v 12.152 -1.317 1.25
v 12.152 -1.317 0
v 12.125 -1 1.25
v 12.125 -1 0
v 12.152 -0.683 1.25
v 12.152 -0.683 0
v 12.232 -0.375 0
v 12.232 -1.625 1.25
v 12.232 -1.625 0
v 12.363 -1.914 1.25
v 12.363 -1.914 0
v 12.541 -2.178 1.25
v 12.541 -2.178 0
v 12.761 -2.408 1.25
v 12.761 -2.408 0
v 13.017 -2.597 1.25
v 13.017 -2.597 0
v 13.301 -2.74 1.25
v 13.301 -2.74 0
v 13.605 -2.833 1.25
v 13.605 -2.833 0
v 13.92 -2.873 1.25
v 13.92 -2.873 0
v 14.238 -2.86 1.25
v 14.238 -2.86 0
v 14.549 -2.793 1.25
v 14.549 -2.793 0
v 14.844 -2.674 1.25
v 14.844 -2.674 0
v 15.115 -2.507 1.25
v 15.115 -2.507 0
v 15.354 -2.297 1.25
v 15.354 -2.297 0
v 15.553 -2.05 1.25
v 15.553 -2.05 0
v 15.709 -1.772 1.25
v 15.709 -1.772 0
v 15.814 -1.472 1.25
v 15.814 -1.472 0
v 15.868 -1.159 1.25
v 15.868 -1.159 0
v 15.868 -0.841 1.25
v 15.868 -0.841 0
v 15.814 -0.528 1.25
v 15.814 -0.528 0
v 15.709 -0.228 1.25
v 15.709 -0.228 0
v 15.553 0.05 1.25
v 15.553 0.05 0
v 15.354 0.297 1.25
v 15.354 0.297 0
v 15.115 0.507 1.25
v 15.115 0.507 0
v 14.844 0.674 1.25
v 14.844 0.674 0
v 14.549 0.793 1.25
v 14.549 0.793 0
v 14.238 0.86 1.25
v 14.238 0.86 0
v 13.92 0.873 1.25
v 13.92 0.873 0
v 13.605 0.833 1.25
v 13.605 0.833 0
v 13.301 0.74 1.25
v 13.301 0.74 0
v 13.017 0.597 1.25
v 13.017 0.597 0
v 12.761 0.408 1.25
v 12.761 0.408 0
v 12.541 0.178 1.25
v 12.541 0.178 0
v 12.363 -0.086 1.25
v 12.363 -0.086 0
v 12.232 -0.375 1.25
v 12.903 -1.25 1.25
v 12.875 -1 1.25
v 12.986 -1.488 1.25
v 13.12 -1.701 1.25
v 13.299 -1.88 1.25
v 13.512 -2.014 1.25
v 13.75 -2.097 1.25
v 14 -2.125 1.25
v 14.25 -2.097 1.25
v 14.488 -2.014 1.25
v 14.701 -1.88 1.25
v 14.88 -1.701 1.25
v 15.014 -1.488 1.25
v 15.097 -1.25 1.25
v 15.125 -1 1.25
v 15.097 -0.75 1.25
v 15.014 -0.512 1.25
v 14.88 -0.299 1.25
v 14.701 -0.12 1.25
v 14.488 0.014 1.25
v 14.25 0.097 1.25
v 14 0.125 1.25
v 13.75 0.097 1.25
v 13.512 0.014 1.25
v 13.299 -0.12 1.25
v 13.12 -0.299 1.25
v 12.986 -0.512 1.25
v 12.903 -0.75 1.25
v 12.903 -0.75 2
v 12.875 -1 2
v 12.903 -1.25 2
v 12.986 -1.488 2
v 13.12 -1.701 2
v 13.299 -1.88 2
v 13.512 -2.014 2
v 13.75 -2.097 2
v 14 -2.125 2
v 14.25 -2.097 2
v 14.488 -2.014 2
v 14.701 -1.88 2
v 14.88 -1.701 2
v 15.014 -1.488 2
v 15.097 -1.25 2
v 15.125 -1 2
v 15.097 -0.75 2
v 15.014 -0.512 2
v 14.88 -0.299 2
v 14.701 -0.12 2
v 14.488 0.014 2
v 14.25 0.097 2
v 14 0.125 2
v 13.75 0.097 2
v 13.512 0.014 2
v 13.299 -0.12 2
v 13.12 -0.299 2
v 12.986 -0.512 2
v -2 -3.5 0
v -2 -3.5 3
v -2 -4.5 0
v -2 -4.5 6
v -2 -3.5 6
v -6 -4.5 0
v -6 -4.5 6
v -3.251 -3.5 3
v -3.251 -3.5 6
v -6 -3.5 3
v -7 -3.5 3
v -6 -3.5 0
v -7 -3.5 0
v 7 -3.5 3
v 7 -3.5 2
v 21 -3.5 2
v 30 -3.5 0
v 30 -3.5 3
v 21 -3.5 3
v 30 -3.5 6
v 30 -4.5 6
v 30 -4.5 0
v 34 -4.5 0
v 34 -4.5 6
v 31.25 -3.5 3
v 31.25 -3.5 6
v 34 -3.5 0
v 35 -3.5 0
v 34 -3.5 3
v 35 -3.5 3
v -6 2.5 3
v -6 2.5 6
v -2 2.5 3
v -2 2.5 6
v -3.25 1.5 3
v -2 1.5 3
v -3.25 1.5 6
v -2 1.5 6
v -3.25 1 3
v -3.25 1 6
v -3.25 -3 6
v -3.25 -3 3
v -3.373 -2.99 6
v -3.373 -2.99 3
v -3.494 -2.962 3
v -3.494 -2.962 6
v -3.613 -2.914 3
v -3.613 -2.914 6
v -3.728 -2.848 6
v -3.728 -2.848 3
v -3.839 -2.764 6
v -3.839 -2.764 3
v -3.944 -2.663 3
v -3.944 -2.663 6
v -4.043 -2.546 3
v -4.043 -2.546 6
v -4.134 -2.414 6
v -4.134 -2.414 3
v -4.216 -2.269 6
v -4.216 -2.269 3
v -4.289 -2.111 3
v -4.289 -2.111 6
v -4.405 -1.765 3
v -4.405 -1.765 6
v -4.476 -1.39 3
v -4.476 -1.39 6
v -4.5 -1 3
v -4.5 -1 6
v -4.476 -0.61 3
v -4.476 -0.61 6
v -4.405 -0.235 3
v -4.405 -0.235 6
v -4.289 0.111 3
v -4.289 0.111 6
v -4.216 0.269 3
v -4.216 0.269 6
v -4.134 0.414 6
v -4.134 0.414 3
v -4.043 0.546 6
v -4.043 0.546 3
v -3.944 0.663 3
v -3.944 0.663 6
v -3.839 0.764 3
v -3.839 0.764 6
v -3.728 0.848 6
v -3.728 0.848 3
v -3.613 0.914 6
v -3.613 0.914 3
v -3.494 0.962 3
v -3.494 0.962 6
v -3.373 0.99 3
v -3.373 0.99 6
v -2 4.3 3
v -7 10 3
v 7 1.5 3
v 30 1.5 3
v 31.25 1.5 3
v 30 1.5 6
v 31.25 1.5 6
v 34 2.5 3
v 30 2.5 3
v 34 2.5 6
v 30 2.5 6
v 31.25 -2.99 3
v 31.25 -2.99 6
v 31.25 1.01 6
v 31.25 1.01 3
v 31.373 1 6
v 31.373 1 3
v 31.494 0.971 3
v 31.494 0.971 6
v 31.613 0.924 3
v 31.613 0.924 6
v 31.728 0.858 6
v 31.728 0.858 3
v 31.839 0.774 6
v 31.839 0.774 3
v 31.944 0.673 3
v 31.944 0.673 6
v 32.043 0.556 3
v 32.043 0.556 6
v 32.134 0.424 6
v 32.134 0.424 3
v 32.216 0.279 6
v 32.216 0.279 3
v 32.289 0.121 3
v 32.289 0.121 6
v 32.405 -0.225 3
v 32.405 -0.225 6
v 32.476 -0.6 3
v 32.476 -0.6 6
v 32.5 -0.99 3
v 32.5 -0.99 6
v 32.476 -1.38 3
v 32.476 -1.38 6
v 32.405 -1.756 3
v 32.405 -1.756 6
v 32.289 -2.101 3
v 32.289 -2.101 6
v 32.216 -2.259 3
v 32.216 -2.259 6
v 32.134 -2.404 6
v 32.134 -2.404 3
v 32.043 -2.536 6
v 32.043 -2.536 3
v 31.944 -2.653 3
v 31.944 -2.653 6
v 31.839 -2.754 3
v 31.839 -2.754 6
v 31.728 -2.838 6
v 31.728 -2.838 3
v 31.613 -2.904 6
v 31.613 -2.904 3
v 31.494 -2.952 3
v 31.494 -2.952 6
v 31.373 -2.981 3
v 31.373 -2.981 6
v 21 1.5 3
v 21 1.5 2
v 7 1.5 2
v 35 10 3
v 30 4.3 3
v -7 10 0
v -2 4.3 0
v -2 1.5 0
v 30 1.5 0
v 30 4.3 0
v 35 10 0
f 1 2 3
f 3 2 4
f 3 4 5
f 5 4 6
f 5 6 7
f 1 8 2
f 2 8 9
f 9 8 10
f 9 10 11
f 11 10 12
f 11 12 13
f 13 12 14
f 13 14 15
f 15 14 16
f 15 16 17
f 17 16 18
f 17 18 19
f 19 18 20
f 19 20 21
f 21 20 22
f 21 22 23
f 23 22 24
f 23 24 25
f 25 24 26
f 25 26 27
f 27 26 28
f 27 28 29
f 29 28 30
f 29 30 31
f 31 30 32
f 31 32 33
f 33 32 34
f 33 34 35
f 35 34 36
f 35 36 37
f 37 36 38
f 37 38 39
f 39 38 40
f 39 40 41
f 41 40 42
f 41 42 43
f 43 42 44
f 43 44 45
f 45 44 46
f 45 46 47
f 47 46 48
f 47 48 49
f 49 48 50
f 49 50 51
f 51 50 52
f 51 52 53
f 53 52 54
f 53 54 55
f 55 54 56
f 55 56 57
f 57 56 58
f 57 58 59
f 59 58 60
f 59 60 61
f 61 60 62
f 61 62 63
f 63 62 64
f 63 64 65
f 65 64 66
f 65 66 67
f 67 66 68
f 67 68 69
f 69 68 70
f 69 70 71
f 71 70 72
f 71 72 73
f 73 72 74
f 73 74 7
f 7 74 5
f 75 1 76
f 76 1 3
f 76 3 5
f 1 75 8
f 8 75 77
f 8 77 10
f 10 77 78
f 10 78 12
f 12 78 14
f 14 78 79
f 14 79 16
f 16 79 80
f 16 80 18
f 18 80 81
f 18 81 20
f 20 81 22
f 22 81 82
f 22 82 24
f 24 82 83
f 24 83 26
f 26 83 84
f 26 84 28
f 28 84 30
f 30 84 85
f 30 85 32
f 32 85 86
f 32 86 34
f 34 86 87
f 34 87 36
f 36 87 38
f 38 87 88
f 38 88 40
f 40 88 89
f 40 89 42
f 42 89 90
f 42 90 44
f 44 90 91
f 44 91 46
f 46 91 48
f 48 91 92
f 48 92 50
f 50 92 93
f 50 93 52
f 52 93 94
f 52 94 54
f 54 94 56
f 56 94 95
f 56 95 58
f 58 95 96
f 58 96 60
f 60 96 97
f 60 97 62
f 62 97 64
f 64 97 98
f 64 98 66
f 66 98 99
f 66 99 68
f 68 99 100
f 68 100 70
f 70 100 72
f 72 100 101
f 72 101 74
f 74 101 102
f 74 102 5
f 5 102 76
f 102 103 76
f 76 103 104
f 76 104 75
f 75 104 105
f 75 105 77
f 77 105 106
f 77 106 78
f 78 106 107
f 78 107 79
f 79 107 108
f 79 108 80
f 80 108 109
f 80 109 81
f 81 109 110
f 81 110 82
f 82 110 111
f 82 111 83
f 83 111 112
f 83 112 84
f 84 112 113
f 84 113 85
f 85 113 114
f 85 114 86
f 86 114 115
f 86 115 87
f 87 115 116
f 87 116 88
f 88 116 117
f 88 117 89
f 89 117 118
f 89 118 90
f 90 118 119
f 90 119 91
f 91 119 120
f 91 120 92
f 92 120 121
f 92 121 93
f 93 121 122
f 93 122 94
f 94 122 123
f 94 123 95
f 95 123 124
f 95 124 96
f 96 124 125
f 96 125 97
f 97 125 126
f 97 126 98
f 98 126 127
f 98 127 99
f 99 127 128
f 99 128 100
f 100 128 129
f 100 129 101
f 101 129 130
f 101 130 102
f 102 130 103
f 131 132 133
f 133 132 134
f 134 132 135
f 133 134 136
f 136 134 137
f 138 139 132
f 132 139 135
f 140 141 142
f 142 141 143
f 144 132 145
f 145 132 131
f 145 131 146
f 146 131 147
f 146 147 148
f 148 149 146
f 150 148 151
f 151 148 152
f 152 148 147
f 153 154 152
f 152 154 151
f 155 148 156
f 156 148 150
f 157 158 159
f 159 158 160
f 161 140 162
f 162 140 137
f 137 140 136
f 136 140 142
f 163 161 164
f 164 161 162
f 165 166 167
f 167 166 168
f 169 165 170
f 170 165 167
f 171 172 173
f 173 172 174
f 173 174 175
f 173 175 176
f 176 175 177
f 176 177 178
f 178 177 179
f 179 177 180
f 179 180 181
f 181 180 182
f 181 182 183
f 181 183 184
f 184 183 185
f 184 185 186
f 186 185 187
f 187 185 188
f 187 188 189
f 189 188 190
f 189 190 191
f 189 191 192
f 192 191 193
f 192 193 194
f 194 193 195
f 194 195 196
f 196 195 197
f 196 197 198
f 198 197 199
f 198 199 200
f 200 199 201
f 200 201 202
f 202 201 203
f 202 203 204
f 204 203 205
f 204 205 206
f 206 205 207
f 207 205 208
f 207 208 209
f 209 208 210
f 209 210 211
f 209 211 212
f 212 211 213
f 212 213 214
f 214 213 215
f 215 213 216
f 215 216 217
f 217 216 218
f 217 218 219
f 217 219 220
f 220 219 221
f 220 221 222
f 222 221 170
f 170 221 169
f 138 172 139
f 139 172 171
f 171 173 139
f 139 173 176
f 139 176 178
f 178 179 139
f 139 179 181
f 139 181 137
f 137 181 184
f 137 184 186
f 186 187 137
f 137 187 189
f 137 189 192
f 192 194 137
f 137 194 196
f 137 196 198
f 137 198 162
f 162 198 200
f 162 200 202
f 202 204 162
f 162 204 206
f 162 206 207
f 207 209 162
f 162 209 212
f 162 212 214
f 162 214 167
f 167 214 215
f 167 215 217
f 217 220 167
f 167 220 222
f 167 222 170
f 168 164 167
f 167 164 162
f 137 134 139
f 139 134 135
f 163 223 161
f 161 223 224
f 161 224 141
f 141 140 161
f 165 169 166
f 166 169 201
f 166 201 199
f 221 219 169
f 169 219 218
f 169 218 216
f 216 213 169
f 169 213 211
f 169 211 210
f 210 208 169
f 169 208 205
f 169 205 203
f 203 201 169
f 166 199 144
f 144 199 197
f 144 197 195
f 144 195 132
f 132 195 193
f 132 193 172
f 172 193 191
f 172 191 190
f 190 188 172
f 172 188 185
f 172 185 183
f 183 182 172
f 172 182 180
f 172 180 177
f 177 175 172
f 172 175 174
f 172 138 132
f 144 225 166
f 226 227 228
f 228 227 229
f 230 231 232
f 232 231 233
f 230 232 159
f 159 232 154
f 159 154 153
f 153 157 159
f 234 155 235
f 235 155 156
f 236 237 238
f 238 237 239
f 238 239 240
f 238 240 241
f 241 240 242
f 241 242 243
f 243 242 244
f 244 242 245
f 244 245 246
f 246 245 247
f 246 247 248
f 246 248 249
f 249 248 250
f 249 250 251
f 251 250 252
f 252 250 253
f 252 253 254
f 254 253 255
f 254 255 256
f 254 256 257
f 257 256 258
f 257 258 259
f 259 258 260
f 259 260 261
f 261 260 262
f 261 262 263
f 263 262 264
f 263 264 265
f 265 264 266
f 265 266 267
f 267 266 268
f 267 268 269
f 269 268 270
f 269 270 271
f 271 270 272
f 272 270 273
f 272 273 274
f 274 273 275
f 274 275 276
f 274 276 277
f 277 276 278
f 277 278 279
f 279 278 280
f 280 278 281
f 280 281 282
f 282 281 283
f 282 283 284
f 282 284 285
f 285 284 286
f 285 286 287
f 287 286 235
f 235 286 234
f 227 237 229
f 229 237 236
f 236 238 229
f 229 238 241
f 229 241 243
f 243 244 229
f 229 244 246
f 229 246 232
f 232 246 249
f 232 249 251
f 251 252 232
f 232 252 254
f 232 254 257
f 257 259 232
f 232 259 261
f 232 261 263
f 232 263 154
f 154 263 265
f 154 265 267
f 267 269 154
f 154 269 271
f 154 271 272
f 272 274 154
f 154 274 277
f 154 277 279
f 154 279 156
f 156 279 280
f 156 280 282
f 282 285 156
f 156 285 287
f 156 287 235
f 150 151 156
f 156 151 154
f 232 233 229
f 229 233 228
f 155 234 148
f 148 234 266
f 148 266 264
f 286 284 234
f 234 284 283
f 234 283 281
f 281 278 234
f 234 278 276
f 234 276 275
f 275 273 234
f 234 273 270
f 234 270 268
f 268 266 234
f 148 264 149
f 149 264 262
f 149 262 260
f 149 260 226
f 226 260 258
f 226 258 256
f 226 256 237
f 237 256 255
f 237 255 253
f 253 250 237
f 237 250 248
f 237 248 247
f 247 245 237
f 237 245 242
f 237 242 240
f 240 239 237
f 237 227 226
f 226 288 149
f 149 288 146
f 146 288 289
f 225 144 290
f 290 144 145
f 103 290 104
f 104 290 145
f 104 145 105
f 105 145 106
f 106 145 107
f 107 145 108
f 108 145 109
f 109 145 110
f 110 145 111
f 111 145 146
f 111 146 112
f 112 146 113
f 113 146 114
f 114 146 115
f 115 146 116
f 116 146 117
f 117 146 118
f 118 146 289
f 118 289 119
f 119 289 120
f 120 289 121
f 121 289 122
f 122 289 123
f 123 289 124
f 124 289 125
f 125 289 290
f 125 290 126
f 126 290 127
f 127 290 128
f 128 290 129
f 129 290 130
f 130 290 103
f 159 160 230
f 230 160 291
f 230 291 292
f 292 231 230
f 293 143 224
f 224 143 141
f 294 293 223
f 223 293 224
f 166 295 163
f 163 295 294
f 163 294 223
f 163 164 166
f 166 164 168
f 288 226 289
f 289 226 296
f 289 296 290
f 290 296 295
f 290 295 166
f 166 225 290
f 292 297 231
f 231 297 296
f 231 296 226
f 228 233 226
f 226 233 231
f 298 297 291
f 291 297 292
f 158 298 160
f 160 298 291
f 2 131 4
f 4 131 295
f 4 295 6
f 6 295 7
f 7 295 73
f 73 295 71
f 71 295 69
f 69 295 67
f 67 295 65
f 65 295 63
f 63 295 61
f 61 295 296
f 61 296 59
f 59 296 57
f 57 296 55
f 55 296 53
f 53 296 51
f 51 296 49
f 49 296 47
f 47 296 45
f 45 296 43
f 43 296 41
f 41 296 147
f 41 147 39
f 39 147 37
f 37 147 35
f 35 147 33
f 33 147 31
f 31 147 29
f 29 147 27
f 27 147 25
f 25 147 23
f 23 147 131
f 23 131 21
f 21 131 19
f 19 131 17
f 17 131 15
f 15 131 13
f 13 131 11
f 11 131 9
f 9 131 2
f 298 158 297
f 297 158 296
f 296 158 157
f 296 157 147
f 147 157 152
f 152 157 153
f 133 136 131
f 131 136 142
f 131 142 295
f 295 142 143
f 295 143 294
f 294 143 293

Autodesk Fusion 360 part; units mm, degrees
sketch "Sketch1" plane through (0, 0, 0) normal (0, 0, 1) x (1, 0, 0)
  line L0 (-7, 1.5) -> (35, 1.5)
  line L1 (35, 1.5) -> (35, -3.5)
  line L2 (35, -3.5) -> (-7, -3.5)
  line L3 (-7, -3.5) -> (-7, 1.5)
  line L4 (-7, 1.5) -> (-7, 10)
  line L5 (-7, 10) -> (-2, 4.3)
  line L6 (-2, 4.3) -> (-2, 1.5)
  line L7 (35, 1.5) -> (35, 10)
  line L8 (35, 10) -> (30, 4.3)
  line L9 (30, 4.3) -> (30, 1.5)
  dimension "d1" = 5
  dimension "d2" = 42
  dimension "d13" = 8.5
  dimension "d14" = 5
  dimension "d15" = 2.8
extrude "Extrude1" add sketch "Sketch1" along normal blind 3
sketch "Sketch2" plane through (0, 0, 3) normal (0, 0, 1) x (-1, 0, 0)
  line L0 (-35, 3.5) -> (-35, -10)
  line L1 (-35, -10) -> (-30, -4.3)
  line L2 (-30, -4.3) -> (-30, -1.5)
  line L3 (-30, -1.5) -> (2, -1.5)
  line L4 (2, -1.5) -> (2, -4.3)
  line L5 (2, -4.3) -> (7, -10)
  line L6 (7, -10) -> (7, 3.5)
  line L7 (7, 3.5) -> (-35, 3.5)
  line L8 (-7, -1.5) -> (-21, -1.5)
  line L9 (-21, -1.5) -> (-21, 3.5)
  line L10 (-21, 3.5) -> (-7, 3.5)
  line L11 (-7, 3.5) -> (-7, -1.5)
  line L12 (-7, -1.5) -> (-21, 3.5) construction
  line L13 (-21, -1.5) -> (-7, 3.5) construction
  point P0 (-14, 1)
  dimension "d16" = 14
  dimension "d17" = 14
  dimension "d18" = 5
extrude "Extrude2" cut sketch "Sketch2" against normal blind 1 contours L3 L7 L8 L9 L10 L11
sketch "Sketch3" plane through (0, 0, 3) normal (0, 0, 1) x (-1, 0, 0)
  line L0 (-21, -1.5) -> (-21, 3.5)
  line L1 (-21, 3.5) -> (-35, 3.5)
  line L2 (-35, 3.5) -> (-35, -10)
  line L3 (-35, -10) -> (-30, -4.3)
  line L4 (-30, -4.3) -> (-30, -1.5)
  line L5 (-30, -1.5) -> (-21, -1.5)
  line L6 (6, -1.5) -> (-34, -1.5)
  line L7 (-34, -1.5) -> (-34, 3.5)
  line L8 (-34, 3.5) -> (6, 3.5)
  line L9 (6, 3.5) -> (6, -1.5)
  line L10 (6, -1.5) -> (-34, 3.5) construction
  line L11 (-34, -1.5) -> (6, 3.5) construction
  ellipse E0 centre (3.25, 1) end of major axis (4.5, 1) minor radius 2
  line L12 (2, 1) -> (4.5, 1) construction
  line L13 (3.25, -1) -> (3.25, 3) construction
  line L14 (3.2507, 3.5) -> (3.25, 3)
  line L15 (3.25, -1) -> (3.25, -1.5)
  ellipse E1 centre (-31.25, 0.9902) end of major axis (-32.5, 0.9902) minor radius 2
  line L16 (-30, 0.9902) -> (-32.5, 0.9902) construction
  line L17 (-31.25, 2.9902) -> (-31.25, -1.0098) construction
  line L18 (-31.25, 2.9902) -> (-31.25, 3.5)
  line L19 (-31.25, -1.5) -> (-31.25, -1.0098)
  line L20 (6, -2.5) -> (2, -2.5)
  line L21 (2, -2.5) -> (2, -1.5)
  line L22 (2, -1.5) -> (6, -1.5)
  line L23 (6, -1.5) -> (6, -2.5)
  line L24 (-34, -1.5) -> (-30, -1.5)
  line L25 (-30, -1.5) -> (-30, -2.5)
  line L26 (-30, -2.5) -> (-34, -2.5)
  line L27 (-34, -2.5) -> (-34, -1.5)
  point P0 (-14, 1)
  dimension "d7" = 40
  dimension "d8" = 2.5
  dimension "d9" = 4
  dimension "d10" = 2.5
  dimension "d19" = 5
  dimension "d20" = 21
  dimension "d21" = 2.5
  dimension "d22" = 37
  dimension "d23" = 1.5
  dimension "d24" = 5
extrude "Extrude3" add sketch "Sketch3" along normal blind 3 contours L4 L6 L24 L25 L26 L27 | L6 L20 L21 L22 L23 | L1 L6 L7 L8 E1 L18 L19 L24 | L6 L8 L9 E0 L14 L15 L22
sketch "Sketch6" plane through (0, -3.5, 0) normal (0, -1, 0) x (1, 0, 0)
  line L0 (21, 3) -> (21, 2)
  line L1 (21, 2) -> (7, 2)
  line L2 (7, 2) -> (7, 3)
  line L3 (7, 3) -> (-3.2507, 3)
  line L4 (-3.2507, 3) -> (-3.2507, 6)
  line L5 (-3.2507, 6) -> (-6, 6)
  line L6 (-6, 6) -> (-6, 3)
  line L7 (-6, 3) -> (-7, 3)
  line L8 (-7, 3) -> (-7, 0)
  line L9 (-7, 0) -> (35, 0)
  line L10 (35, 0) -> (35, 3)
  line L11 (35, 3) -> (34, 3)
  line L12 (34, 3) -> (34, 6)
  line L13 (34, 6) -> (31.25, 6)
  line L14 (31.25, 6) -> (31.25, 3)
  line L15 (31.25, 3) -> (21, 3)
  line L16 (-2, 6) -> (-6, 6)
  line L17 (-6, 6) -> (-6, 0)
  line L18 (-6, 0) -> (-2, 0)
  line L19 (-2, 0) -> (-2, 6)
  line L20 (34, 6) -> (30, 6)
  line L21 (30, 6) -> (30, 0)
  line L22 (30, 0) -> (34, 0)
  line L23 (34, 0) -> (34, 6)
extrude "Extrude6" add sketch "Sketch6" along normal blind 1 contours L14 L15 L20 L21 | L9 L12 L13 L14 L15 L20 L21 L22 L23 | L3 L4 L5 L6 L9 L16 L17 L18 L19 | L3 L4 L16 L19
sketch "Sketch4" plane through (0, 0, 0) normal (0, 0, -1) x (1, 0, 0)
  line L0 (35, -10) -> (35, 3.5)
  line L1 (35, 3.5) -> (34, 3.5)
  line L2 (-7, 3.5) -> (-7, -10)
  line L3 (-7, -10) -> (-2, -4.3)
  line L4 (-2, -4.3) -> (-2, -1.5)
  line L5 (-2, -1.5) -> (30, -1.5)
  line L6 (30, -1.5) -> (30, -4.3)
  line L7 (30, -4.3) -> (35, -10)
  line L8 (5, 3.5) -> (23, 3.5)
  line L9 (23, 3.5) -> (23, -1.5)
  line L10 (23, -1.5) -> (5, -1.5)
  line L11 (5, -1.5) -> (5, 3.5)
  circle A0 centre (14, 1) radius 1.125
  line L12 (34, 3.5) -> (34, 4.5)
  line L13 (34, 4.5) -> (30, 4.5)
  line L14 (30, 4.5) -> (30, 3.5)
  line L15 (30, 3.5) -> (-2, 3.5)
  line L16 (-2, 3.5) -> (-2, 4.5)
  line L17 (-2, 4.5) -> (-6, 4.5)
  line L18 (-6, 4.5) -> (-6, 3.5)
  line L19 (-6, 3.5) -> (-7, 3.5)
  dimension "d25" = 2.25
extrude "Extrude4" cut sketch "Sketch4" against normal blind 2 contours A0
sketch "Sketch5" plane through (0, 0, 0) normal (0, 0, -1) x (1, 0, 0)
  circle A0 centre (14, 1) radius 1.125
  line L0 (35, -10) -> (35, 3.5)
  line L1 (35, 3.5) -> (34, 3.5)
  line L2 (-7, 3.5) -> (-7, -10)
  line L3 (-7, -10) -> (-2, -4.3)
  line L4 (-2, -4.3) -> (-2, -1.5)
  line L5 (-2, -1.5) -> (30, -1.5)
  line L6 (30, -1.5) -> (30, -4.3)
  line L7 (30, -4.3) -> (35, -10)
  circle A1 centre (14, 1) radius 1.875
  line L8 (34, 3.5) -> (34, 4.5)
  line L9 (34, 4.5) -> (30, 4.5)
  line L10 (30, 4.5) -> (30, 3.5)
  line L11 (30, 3.5) -> (-2, 3.5)
  line L12 (-2, 3.5) -> (-2, 4.5)
  line L13 (-2, 4.5) -> (-6, 4.5)
  line L14 (-6, 4.5) -> (-6, 3.5)
  line L15 (-6, 3.5) -> (-7, 3.5)
  dimension "d28" = 3.75
extrude "Extrude5" cut sketch "Sketch5" against normal blind 1.25 contours A1
equation "d16 = d17"
equation "d18 = d1"
equation "d19 = d1"
equation "d20 = d2 / 2"
equation "d21 = d1 / 2"
equation "d24 = d1"
